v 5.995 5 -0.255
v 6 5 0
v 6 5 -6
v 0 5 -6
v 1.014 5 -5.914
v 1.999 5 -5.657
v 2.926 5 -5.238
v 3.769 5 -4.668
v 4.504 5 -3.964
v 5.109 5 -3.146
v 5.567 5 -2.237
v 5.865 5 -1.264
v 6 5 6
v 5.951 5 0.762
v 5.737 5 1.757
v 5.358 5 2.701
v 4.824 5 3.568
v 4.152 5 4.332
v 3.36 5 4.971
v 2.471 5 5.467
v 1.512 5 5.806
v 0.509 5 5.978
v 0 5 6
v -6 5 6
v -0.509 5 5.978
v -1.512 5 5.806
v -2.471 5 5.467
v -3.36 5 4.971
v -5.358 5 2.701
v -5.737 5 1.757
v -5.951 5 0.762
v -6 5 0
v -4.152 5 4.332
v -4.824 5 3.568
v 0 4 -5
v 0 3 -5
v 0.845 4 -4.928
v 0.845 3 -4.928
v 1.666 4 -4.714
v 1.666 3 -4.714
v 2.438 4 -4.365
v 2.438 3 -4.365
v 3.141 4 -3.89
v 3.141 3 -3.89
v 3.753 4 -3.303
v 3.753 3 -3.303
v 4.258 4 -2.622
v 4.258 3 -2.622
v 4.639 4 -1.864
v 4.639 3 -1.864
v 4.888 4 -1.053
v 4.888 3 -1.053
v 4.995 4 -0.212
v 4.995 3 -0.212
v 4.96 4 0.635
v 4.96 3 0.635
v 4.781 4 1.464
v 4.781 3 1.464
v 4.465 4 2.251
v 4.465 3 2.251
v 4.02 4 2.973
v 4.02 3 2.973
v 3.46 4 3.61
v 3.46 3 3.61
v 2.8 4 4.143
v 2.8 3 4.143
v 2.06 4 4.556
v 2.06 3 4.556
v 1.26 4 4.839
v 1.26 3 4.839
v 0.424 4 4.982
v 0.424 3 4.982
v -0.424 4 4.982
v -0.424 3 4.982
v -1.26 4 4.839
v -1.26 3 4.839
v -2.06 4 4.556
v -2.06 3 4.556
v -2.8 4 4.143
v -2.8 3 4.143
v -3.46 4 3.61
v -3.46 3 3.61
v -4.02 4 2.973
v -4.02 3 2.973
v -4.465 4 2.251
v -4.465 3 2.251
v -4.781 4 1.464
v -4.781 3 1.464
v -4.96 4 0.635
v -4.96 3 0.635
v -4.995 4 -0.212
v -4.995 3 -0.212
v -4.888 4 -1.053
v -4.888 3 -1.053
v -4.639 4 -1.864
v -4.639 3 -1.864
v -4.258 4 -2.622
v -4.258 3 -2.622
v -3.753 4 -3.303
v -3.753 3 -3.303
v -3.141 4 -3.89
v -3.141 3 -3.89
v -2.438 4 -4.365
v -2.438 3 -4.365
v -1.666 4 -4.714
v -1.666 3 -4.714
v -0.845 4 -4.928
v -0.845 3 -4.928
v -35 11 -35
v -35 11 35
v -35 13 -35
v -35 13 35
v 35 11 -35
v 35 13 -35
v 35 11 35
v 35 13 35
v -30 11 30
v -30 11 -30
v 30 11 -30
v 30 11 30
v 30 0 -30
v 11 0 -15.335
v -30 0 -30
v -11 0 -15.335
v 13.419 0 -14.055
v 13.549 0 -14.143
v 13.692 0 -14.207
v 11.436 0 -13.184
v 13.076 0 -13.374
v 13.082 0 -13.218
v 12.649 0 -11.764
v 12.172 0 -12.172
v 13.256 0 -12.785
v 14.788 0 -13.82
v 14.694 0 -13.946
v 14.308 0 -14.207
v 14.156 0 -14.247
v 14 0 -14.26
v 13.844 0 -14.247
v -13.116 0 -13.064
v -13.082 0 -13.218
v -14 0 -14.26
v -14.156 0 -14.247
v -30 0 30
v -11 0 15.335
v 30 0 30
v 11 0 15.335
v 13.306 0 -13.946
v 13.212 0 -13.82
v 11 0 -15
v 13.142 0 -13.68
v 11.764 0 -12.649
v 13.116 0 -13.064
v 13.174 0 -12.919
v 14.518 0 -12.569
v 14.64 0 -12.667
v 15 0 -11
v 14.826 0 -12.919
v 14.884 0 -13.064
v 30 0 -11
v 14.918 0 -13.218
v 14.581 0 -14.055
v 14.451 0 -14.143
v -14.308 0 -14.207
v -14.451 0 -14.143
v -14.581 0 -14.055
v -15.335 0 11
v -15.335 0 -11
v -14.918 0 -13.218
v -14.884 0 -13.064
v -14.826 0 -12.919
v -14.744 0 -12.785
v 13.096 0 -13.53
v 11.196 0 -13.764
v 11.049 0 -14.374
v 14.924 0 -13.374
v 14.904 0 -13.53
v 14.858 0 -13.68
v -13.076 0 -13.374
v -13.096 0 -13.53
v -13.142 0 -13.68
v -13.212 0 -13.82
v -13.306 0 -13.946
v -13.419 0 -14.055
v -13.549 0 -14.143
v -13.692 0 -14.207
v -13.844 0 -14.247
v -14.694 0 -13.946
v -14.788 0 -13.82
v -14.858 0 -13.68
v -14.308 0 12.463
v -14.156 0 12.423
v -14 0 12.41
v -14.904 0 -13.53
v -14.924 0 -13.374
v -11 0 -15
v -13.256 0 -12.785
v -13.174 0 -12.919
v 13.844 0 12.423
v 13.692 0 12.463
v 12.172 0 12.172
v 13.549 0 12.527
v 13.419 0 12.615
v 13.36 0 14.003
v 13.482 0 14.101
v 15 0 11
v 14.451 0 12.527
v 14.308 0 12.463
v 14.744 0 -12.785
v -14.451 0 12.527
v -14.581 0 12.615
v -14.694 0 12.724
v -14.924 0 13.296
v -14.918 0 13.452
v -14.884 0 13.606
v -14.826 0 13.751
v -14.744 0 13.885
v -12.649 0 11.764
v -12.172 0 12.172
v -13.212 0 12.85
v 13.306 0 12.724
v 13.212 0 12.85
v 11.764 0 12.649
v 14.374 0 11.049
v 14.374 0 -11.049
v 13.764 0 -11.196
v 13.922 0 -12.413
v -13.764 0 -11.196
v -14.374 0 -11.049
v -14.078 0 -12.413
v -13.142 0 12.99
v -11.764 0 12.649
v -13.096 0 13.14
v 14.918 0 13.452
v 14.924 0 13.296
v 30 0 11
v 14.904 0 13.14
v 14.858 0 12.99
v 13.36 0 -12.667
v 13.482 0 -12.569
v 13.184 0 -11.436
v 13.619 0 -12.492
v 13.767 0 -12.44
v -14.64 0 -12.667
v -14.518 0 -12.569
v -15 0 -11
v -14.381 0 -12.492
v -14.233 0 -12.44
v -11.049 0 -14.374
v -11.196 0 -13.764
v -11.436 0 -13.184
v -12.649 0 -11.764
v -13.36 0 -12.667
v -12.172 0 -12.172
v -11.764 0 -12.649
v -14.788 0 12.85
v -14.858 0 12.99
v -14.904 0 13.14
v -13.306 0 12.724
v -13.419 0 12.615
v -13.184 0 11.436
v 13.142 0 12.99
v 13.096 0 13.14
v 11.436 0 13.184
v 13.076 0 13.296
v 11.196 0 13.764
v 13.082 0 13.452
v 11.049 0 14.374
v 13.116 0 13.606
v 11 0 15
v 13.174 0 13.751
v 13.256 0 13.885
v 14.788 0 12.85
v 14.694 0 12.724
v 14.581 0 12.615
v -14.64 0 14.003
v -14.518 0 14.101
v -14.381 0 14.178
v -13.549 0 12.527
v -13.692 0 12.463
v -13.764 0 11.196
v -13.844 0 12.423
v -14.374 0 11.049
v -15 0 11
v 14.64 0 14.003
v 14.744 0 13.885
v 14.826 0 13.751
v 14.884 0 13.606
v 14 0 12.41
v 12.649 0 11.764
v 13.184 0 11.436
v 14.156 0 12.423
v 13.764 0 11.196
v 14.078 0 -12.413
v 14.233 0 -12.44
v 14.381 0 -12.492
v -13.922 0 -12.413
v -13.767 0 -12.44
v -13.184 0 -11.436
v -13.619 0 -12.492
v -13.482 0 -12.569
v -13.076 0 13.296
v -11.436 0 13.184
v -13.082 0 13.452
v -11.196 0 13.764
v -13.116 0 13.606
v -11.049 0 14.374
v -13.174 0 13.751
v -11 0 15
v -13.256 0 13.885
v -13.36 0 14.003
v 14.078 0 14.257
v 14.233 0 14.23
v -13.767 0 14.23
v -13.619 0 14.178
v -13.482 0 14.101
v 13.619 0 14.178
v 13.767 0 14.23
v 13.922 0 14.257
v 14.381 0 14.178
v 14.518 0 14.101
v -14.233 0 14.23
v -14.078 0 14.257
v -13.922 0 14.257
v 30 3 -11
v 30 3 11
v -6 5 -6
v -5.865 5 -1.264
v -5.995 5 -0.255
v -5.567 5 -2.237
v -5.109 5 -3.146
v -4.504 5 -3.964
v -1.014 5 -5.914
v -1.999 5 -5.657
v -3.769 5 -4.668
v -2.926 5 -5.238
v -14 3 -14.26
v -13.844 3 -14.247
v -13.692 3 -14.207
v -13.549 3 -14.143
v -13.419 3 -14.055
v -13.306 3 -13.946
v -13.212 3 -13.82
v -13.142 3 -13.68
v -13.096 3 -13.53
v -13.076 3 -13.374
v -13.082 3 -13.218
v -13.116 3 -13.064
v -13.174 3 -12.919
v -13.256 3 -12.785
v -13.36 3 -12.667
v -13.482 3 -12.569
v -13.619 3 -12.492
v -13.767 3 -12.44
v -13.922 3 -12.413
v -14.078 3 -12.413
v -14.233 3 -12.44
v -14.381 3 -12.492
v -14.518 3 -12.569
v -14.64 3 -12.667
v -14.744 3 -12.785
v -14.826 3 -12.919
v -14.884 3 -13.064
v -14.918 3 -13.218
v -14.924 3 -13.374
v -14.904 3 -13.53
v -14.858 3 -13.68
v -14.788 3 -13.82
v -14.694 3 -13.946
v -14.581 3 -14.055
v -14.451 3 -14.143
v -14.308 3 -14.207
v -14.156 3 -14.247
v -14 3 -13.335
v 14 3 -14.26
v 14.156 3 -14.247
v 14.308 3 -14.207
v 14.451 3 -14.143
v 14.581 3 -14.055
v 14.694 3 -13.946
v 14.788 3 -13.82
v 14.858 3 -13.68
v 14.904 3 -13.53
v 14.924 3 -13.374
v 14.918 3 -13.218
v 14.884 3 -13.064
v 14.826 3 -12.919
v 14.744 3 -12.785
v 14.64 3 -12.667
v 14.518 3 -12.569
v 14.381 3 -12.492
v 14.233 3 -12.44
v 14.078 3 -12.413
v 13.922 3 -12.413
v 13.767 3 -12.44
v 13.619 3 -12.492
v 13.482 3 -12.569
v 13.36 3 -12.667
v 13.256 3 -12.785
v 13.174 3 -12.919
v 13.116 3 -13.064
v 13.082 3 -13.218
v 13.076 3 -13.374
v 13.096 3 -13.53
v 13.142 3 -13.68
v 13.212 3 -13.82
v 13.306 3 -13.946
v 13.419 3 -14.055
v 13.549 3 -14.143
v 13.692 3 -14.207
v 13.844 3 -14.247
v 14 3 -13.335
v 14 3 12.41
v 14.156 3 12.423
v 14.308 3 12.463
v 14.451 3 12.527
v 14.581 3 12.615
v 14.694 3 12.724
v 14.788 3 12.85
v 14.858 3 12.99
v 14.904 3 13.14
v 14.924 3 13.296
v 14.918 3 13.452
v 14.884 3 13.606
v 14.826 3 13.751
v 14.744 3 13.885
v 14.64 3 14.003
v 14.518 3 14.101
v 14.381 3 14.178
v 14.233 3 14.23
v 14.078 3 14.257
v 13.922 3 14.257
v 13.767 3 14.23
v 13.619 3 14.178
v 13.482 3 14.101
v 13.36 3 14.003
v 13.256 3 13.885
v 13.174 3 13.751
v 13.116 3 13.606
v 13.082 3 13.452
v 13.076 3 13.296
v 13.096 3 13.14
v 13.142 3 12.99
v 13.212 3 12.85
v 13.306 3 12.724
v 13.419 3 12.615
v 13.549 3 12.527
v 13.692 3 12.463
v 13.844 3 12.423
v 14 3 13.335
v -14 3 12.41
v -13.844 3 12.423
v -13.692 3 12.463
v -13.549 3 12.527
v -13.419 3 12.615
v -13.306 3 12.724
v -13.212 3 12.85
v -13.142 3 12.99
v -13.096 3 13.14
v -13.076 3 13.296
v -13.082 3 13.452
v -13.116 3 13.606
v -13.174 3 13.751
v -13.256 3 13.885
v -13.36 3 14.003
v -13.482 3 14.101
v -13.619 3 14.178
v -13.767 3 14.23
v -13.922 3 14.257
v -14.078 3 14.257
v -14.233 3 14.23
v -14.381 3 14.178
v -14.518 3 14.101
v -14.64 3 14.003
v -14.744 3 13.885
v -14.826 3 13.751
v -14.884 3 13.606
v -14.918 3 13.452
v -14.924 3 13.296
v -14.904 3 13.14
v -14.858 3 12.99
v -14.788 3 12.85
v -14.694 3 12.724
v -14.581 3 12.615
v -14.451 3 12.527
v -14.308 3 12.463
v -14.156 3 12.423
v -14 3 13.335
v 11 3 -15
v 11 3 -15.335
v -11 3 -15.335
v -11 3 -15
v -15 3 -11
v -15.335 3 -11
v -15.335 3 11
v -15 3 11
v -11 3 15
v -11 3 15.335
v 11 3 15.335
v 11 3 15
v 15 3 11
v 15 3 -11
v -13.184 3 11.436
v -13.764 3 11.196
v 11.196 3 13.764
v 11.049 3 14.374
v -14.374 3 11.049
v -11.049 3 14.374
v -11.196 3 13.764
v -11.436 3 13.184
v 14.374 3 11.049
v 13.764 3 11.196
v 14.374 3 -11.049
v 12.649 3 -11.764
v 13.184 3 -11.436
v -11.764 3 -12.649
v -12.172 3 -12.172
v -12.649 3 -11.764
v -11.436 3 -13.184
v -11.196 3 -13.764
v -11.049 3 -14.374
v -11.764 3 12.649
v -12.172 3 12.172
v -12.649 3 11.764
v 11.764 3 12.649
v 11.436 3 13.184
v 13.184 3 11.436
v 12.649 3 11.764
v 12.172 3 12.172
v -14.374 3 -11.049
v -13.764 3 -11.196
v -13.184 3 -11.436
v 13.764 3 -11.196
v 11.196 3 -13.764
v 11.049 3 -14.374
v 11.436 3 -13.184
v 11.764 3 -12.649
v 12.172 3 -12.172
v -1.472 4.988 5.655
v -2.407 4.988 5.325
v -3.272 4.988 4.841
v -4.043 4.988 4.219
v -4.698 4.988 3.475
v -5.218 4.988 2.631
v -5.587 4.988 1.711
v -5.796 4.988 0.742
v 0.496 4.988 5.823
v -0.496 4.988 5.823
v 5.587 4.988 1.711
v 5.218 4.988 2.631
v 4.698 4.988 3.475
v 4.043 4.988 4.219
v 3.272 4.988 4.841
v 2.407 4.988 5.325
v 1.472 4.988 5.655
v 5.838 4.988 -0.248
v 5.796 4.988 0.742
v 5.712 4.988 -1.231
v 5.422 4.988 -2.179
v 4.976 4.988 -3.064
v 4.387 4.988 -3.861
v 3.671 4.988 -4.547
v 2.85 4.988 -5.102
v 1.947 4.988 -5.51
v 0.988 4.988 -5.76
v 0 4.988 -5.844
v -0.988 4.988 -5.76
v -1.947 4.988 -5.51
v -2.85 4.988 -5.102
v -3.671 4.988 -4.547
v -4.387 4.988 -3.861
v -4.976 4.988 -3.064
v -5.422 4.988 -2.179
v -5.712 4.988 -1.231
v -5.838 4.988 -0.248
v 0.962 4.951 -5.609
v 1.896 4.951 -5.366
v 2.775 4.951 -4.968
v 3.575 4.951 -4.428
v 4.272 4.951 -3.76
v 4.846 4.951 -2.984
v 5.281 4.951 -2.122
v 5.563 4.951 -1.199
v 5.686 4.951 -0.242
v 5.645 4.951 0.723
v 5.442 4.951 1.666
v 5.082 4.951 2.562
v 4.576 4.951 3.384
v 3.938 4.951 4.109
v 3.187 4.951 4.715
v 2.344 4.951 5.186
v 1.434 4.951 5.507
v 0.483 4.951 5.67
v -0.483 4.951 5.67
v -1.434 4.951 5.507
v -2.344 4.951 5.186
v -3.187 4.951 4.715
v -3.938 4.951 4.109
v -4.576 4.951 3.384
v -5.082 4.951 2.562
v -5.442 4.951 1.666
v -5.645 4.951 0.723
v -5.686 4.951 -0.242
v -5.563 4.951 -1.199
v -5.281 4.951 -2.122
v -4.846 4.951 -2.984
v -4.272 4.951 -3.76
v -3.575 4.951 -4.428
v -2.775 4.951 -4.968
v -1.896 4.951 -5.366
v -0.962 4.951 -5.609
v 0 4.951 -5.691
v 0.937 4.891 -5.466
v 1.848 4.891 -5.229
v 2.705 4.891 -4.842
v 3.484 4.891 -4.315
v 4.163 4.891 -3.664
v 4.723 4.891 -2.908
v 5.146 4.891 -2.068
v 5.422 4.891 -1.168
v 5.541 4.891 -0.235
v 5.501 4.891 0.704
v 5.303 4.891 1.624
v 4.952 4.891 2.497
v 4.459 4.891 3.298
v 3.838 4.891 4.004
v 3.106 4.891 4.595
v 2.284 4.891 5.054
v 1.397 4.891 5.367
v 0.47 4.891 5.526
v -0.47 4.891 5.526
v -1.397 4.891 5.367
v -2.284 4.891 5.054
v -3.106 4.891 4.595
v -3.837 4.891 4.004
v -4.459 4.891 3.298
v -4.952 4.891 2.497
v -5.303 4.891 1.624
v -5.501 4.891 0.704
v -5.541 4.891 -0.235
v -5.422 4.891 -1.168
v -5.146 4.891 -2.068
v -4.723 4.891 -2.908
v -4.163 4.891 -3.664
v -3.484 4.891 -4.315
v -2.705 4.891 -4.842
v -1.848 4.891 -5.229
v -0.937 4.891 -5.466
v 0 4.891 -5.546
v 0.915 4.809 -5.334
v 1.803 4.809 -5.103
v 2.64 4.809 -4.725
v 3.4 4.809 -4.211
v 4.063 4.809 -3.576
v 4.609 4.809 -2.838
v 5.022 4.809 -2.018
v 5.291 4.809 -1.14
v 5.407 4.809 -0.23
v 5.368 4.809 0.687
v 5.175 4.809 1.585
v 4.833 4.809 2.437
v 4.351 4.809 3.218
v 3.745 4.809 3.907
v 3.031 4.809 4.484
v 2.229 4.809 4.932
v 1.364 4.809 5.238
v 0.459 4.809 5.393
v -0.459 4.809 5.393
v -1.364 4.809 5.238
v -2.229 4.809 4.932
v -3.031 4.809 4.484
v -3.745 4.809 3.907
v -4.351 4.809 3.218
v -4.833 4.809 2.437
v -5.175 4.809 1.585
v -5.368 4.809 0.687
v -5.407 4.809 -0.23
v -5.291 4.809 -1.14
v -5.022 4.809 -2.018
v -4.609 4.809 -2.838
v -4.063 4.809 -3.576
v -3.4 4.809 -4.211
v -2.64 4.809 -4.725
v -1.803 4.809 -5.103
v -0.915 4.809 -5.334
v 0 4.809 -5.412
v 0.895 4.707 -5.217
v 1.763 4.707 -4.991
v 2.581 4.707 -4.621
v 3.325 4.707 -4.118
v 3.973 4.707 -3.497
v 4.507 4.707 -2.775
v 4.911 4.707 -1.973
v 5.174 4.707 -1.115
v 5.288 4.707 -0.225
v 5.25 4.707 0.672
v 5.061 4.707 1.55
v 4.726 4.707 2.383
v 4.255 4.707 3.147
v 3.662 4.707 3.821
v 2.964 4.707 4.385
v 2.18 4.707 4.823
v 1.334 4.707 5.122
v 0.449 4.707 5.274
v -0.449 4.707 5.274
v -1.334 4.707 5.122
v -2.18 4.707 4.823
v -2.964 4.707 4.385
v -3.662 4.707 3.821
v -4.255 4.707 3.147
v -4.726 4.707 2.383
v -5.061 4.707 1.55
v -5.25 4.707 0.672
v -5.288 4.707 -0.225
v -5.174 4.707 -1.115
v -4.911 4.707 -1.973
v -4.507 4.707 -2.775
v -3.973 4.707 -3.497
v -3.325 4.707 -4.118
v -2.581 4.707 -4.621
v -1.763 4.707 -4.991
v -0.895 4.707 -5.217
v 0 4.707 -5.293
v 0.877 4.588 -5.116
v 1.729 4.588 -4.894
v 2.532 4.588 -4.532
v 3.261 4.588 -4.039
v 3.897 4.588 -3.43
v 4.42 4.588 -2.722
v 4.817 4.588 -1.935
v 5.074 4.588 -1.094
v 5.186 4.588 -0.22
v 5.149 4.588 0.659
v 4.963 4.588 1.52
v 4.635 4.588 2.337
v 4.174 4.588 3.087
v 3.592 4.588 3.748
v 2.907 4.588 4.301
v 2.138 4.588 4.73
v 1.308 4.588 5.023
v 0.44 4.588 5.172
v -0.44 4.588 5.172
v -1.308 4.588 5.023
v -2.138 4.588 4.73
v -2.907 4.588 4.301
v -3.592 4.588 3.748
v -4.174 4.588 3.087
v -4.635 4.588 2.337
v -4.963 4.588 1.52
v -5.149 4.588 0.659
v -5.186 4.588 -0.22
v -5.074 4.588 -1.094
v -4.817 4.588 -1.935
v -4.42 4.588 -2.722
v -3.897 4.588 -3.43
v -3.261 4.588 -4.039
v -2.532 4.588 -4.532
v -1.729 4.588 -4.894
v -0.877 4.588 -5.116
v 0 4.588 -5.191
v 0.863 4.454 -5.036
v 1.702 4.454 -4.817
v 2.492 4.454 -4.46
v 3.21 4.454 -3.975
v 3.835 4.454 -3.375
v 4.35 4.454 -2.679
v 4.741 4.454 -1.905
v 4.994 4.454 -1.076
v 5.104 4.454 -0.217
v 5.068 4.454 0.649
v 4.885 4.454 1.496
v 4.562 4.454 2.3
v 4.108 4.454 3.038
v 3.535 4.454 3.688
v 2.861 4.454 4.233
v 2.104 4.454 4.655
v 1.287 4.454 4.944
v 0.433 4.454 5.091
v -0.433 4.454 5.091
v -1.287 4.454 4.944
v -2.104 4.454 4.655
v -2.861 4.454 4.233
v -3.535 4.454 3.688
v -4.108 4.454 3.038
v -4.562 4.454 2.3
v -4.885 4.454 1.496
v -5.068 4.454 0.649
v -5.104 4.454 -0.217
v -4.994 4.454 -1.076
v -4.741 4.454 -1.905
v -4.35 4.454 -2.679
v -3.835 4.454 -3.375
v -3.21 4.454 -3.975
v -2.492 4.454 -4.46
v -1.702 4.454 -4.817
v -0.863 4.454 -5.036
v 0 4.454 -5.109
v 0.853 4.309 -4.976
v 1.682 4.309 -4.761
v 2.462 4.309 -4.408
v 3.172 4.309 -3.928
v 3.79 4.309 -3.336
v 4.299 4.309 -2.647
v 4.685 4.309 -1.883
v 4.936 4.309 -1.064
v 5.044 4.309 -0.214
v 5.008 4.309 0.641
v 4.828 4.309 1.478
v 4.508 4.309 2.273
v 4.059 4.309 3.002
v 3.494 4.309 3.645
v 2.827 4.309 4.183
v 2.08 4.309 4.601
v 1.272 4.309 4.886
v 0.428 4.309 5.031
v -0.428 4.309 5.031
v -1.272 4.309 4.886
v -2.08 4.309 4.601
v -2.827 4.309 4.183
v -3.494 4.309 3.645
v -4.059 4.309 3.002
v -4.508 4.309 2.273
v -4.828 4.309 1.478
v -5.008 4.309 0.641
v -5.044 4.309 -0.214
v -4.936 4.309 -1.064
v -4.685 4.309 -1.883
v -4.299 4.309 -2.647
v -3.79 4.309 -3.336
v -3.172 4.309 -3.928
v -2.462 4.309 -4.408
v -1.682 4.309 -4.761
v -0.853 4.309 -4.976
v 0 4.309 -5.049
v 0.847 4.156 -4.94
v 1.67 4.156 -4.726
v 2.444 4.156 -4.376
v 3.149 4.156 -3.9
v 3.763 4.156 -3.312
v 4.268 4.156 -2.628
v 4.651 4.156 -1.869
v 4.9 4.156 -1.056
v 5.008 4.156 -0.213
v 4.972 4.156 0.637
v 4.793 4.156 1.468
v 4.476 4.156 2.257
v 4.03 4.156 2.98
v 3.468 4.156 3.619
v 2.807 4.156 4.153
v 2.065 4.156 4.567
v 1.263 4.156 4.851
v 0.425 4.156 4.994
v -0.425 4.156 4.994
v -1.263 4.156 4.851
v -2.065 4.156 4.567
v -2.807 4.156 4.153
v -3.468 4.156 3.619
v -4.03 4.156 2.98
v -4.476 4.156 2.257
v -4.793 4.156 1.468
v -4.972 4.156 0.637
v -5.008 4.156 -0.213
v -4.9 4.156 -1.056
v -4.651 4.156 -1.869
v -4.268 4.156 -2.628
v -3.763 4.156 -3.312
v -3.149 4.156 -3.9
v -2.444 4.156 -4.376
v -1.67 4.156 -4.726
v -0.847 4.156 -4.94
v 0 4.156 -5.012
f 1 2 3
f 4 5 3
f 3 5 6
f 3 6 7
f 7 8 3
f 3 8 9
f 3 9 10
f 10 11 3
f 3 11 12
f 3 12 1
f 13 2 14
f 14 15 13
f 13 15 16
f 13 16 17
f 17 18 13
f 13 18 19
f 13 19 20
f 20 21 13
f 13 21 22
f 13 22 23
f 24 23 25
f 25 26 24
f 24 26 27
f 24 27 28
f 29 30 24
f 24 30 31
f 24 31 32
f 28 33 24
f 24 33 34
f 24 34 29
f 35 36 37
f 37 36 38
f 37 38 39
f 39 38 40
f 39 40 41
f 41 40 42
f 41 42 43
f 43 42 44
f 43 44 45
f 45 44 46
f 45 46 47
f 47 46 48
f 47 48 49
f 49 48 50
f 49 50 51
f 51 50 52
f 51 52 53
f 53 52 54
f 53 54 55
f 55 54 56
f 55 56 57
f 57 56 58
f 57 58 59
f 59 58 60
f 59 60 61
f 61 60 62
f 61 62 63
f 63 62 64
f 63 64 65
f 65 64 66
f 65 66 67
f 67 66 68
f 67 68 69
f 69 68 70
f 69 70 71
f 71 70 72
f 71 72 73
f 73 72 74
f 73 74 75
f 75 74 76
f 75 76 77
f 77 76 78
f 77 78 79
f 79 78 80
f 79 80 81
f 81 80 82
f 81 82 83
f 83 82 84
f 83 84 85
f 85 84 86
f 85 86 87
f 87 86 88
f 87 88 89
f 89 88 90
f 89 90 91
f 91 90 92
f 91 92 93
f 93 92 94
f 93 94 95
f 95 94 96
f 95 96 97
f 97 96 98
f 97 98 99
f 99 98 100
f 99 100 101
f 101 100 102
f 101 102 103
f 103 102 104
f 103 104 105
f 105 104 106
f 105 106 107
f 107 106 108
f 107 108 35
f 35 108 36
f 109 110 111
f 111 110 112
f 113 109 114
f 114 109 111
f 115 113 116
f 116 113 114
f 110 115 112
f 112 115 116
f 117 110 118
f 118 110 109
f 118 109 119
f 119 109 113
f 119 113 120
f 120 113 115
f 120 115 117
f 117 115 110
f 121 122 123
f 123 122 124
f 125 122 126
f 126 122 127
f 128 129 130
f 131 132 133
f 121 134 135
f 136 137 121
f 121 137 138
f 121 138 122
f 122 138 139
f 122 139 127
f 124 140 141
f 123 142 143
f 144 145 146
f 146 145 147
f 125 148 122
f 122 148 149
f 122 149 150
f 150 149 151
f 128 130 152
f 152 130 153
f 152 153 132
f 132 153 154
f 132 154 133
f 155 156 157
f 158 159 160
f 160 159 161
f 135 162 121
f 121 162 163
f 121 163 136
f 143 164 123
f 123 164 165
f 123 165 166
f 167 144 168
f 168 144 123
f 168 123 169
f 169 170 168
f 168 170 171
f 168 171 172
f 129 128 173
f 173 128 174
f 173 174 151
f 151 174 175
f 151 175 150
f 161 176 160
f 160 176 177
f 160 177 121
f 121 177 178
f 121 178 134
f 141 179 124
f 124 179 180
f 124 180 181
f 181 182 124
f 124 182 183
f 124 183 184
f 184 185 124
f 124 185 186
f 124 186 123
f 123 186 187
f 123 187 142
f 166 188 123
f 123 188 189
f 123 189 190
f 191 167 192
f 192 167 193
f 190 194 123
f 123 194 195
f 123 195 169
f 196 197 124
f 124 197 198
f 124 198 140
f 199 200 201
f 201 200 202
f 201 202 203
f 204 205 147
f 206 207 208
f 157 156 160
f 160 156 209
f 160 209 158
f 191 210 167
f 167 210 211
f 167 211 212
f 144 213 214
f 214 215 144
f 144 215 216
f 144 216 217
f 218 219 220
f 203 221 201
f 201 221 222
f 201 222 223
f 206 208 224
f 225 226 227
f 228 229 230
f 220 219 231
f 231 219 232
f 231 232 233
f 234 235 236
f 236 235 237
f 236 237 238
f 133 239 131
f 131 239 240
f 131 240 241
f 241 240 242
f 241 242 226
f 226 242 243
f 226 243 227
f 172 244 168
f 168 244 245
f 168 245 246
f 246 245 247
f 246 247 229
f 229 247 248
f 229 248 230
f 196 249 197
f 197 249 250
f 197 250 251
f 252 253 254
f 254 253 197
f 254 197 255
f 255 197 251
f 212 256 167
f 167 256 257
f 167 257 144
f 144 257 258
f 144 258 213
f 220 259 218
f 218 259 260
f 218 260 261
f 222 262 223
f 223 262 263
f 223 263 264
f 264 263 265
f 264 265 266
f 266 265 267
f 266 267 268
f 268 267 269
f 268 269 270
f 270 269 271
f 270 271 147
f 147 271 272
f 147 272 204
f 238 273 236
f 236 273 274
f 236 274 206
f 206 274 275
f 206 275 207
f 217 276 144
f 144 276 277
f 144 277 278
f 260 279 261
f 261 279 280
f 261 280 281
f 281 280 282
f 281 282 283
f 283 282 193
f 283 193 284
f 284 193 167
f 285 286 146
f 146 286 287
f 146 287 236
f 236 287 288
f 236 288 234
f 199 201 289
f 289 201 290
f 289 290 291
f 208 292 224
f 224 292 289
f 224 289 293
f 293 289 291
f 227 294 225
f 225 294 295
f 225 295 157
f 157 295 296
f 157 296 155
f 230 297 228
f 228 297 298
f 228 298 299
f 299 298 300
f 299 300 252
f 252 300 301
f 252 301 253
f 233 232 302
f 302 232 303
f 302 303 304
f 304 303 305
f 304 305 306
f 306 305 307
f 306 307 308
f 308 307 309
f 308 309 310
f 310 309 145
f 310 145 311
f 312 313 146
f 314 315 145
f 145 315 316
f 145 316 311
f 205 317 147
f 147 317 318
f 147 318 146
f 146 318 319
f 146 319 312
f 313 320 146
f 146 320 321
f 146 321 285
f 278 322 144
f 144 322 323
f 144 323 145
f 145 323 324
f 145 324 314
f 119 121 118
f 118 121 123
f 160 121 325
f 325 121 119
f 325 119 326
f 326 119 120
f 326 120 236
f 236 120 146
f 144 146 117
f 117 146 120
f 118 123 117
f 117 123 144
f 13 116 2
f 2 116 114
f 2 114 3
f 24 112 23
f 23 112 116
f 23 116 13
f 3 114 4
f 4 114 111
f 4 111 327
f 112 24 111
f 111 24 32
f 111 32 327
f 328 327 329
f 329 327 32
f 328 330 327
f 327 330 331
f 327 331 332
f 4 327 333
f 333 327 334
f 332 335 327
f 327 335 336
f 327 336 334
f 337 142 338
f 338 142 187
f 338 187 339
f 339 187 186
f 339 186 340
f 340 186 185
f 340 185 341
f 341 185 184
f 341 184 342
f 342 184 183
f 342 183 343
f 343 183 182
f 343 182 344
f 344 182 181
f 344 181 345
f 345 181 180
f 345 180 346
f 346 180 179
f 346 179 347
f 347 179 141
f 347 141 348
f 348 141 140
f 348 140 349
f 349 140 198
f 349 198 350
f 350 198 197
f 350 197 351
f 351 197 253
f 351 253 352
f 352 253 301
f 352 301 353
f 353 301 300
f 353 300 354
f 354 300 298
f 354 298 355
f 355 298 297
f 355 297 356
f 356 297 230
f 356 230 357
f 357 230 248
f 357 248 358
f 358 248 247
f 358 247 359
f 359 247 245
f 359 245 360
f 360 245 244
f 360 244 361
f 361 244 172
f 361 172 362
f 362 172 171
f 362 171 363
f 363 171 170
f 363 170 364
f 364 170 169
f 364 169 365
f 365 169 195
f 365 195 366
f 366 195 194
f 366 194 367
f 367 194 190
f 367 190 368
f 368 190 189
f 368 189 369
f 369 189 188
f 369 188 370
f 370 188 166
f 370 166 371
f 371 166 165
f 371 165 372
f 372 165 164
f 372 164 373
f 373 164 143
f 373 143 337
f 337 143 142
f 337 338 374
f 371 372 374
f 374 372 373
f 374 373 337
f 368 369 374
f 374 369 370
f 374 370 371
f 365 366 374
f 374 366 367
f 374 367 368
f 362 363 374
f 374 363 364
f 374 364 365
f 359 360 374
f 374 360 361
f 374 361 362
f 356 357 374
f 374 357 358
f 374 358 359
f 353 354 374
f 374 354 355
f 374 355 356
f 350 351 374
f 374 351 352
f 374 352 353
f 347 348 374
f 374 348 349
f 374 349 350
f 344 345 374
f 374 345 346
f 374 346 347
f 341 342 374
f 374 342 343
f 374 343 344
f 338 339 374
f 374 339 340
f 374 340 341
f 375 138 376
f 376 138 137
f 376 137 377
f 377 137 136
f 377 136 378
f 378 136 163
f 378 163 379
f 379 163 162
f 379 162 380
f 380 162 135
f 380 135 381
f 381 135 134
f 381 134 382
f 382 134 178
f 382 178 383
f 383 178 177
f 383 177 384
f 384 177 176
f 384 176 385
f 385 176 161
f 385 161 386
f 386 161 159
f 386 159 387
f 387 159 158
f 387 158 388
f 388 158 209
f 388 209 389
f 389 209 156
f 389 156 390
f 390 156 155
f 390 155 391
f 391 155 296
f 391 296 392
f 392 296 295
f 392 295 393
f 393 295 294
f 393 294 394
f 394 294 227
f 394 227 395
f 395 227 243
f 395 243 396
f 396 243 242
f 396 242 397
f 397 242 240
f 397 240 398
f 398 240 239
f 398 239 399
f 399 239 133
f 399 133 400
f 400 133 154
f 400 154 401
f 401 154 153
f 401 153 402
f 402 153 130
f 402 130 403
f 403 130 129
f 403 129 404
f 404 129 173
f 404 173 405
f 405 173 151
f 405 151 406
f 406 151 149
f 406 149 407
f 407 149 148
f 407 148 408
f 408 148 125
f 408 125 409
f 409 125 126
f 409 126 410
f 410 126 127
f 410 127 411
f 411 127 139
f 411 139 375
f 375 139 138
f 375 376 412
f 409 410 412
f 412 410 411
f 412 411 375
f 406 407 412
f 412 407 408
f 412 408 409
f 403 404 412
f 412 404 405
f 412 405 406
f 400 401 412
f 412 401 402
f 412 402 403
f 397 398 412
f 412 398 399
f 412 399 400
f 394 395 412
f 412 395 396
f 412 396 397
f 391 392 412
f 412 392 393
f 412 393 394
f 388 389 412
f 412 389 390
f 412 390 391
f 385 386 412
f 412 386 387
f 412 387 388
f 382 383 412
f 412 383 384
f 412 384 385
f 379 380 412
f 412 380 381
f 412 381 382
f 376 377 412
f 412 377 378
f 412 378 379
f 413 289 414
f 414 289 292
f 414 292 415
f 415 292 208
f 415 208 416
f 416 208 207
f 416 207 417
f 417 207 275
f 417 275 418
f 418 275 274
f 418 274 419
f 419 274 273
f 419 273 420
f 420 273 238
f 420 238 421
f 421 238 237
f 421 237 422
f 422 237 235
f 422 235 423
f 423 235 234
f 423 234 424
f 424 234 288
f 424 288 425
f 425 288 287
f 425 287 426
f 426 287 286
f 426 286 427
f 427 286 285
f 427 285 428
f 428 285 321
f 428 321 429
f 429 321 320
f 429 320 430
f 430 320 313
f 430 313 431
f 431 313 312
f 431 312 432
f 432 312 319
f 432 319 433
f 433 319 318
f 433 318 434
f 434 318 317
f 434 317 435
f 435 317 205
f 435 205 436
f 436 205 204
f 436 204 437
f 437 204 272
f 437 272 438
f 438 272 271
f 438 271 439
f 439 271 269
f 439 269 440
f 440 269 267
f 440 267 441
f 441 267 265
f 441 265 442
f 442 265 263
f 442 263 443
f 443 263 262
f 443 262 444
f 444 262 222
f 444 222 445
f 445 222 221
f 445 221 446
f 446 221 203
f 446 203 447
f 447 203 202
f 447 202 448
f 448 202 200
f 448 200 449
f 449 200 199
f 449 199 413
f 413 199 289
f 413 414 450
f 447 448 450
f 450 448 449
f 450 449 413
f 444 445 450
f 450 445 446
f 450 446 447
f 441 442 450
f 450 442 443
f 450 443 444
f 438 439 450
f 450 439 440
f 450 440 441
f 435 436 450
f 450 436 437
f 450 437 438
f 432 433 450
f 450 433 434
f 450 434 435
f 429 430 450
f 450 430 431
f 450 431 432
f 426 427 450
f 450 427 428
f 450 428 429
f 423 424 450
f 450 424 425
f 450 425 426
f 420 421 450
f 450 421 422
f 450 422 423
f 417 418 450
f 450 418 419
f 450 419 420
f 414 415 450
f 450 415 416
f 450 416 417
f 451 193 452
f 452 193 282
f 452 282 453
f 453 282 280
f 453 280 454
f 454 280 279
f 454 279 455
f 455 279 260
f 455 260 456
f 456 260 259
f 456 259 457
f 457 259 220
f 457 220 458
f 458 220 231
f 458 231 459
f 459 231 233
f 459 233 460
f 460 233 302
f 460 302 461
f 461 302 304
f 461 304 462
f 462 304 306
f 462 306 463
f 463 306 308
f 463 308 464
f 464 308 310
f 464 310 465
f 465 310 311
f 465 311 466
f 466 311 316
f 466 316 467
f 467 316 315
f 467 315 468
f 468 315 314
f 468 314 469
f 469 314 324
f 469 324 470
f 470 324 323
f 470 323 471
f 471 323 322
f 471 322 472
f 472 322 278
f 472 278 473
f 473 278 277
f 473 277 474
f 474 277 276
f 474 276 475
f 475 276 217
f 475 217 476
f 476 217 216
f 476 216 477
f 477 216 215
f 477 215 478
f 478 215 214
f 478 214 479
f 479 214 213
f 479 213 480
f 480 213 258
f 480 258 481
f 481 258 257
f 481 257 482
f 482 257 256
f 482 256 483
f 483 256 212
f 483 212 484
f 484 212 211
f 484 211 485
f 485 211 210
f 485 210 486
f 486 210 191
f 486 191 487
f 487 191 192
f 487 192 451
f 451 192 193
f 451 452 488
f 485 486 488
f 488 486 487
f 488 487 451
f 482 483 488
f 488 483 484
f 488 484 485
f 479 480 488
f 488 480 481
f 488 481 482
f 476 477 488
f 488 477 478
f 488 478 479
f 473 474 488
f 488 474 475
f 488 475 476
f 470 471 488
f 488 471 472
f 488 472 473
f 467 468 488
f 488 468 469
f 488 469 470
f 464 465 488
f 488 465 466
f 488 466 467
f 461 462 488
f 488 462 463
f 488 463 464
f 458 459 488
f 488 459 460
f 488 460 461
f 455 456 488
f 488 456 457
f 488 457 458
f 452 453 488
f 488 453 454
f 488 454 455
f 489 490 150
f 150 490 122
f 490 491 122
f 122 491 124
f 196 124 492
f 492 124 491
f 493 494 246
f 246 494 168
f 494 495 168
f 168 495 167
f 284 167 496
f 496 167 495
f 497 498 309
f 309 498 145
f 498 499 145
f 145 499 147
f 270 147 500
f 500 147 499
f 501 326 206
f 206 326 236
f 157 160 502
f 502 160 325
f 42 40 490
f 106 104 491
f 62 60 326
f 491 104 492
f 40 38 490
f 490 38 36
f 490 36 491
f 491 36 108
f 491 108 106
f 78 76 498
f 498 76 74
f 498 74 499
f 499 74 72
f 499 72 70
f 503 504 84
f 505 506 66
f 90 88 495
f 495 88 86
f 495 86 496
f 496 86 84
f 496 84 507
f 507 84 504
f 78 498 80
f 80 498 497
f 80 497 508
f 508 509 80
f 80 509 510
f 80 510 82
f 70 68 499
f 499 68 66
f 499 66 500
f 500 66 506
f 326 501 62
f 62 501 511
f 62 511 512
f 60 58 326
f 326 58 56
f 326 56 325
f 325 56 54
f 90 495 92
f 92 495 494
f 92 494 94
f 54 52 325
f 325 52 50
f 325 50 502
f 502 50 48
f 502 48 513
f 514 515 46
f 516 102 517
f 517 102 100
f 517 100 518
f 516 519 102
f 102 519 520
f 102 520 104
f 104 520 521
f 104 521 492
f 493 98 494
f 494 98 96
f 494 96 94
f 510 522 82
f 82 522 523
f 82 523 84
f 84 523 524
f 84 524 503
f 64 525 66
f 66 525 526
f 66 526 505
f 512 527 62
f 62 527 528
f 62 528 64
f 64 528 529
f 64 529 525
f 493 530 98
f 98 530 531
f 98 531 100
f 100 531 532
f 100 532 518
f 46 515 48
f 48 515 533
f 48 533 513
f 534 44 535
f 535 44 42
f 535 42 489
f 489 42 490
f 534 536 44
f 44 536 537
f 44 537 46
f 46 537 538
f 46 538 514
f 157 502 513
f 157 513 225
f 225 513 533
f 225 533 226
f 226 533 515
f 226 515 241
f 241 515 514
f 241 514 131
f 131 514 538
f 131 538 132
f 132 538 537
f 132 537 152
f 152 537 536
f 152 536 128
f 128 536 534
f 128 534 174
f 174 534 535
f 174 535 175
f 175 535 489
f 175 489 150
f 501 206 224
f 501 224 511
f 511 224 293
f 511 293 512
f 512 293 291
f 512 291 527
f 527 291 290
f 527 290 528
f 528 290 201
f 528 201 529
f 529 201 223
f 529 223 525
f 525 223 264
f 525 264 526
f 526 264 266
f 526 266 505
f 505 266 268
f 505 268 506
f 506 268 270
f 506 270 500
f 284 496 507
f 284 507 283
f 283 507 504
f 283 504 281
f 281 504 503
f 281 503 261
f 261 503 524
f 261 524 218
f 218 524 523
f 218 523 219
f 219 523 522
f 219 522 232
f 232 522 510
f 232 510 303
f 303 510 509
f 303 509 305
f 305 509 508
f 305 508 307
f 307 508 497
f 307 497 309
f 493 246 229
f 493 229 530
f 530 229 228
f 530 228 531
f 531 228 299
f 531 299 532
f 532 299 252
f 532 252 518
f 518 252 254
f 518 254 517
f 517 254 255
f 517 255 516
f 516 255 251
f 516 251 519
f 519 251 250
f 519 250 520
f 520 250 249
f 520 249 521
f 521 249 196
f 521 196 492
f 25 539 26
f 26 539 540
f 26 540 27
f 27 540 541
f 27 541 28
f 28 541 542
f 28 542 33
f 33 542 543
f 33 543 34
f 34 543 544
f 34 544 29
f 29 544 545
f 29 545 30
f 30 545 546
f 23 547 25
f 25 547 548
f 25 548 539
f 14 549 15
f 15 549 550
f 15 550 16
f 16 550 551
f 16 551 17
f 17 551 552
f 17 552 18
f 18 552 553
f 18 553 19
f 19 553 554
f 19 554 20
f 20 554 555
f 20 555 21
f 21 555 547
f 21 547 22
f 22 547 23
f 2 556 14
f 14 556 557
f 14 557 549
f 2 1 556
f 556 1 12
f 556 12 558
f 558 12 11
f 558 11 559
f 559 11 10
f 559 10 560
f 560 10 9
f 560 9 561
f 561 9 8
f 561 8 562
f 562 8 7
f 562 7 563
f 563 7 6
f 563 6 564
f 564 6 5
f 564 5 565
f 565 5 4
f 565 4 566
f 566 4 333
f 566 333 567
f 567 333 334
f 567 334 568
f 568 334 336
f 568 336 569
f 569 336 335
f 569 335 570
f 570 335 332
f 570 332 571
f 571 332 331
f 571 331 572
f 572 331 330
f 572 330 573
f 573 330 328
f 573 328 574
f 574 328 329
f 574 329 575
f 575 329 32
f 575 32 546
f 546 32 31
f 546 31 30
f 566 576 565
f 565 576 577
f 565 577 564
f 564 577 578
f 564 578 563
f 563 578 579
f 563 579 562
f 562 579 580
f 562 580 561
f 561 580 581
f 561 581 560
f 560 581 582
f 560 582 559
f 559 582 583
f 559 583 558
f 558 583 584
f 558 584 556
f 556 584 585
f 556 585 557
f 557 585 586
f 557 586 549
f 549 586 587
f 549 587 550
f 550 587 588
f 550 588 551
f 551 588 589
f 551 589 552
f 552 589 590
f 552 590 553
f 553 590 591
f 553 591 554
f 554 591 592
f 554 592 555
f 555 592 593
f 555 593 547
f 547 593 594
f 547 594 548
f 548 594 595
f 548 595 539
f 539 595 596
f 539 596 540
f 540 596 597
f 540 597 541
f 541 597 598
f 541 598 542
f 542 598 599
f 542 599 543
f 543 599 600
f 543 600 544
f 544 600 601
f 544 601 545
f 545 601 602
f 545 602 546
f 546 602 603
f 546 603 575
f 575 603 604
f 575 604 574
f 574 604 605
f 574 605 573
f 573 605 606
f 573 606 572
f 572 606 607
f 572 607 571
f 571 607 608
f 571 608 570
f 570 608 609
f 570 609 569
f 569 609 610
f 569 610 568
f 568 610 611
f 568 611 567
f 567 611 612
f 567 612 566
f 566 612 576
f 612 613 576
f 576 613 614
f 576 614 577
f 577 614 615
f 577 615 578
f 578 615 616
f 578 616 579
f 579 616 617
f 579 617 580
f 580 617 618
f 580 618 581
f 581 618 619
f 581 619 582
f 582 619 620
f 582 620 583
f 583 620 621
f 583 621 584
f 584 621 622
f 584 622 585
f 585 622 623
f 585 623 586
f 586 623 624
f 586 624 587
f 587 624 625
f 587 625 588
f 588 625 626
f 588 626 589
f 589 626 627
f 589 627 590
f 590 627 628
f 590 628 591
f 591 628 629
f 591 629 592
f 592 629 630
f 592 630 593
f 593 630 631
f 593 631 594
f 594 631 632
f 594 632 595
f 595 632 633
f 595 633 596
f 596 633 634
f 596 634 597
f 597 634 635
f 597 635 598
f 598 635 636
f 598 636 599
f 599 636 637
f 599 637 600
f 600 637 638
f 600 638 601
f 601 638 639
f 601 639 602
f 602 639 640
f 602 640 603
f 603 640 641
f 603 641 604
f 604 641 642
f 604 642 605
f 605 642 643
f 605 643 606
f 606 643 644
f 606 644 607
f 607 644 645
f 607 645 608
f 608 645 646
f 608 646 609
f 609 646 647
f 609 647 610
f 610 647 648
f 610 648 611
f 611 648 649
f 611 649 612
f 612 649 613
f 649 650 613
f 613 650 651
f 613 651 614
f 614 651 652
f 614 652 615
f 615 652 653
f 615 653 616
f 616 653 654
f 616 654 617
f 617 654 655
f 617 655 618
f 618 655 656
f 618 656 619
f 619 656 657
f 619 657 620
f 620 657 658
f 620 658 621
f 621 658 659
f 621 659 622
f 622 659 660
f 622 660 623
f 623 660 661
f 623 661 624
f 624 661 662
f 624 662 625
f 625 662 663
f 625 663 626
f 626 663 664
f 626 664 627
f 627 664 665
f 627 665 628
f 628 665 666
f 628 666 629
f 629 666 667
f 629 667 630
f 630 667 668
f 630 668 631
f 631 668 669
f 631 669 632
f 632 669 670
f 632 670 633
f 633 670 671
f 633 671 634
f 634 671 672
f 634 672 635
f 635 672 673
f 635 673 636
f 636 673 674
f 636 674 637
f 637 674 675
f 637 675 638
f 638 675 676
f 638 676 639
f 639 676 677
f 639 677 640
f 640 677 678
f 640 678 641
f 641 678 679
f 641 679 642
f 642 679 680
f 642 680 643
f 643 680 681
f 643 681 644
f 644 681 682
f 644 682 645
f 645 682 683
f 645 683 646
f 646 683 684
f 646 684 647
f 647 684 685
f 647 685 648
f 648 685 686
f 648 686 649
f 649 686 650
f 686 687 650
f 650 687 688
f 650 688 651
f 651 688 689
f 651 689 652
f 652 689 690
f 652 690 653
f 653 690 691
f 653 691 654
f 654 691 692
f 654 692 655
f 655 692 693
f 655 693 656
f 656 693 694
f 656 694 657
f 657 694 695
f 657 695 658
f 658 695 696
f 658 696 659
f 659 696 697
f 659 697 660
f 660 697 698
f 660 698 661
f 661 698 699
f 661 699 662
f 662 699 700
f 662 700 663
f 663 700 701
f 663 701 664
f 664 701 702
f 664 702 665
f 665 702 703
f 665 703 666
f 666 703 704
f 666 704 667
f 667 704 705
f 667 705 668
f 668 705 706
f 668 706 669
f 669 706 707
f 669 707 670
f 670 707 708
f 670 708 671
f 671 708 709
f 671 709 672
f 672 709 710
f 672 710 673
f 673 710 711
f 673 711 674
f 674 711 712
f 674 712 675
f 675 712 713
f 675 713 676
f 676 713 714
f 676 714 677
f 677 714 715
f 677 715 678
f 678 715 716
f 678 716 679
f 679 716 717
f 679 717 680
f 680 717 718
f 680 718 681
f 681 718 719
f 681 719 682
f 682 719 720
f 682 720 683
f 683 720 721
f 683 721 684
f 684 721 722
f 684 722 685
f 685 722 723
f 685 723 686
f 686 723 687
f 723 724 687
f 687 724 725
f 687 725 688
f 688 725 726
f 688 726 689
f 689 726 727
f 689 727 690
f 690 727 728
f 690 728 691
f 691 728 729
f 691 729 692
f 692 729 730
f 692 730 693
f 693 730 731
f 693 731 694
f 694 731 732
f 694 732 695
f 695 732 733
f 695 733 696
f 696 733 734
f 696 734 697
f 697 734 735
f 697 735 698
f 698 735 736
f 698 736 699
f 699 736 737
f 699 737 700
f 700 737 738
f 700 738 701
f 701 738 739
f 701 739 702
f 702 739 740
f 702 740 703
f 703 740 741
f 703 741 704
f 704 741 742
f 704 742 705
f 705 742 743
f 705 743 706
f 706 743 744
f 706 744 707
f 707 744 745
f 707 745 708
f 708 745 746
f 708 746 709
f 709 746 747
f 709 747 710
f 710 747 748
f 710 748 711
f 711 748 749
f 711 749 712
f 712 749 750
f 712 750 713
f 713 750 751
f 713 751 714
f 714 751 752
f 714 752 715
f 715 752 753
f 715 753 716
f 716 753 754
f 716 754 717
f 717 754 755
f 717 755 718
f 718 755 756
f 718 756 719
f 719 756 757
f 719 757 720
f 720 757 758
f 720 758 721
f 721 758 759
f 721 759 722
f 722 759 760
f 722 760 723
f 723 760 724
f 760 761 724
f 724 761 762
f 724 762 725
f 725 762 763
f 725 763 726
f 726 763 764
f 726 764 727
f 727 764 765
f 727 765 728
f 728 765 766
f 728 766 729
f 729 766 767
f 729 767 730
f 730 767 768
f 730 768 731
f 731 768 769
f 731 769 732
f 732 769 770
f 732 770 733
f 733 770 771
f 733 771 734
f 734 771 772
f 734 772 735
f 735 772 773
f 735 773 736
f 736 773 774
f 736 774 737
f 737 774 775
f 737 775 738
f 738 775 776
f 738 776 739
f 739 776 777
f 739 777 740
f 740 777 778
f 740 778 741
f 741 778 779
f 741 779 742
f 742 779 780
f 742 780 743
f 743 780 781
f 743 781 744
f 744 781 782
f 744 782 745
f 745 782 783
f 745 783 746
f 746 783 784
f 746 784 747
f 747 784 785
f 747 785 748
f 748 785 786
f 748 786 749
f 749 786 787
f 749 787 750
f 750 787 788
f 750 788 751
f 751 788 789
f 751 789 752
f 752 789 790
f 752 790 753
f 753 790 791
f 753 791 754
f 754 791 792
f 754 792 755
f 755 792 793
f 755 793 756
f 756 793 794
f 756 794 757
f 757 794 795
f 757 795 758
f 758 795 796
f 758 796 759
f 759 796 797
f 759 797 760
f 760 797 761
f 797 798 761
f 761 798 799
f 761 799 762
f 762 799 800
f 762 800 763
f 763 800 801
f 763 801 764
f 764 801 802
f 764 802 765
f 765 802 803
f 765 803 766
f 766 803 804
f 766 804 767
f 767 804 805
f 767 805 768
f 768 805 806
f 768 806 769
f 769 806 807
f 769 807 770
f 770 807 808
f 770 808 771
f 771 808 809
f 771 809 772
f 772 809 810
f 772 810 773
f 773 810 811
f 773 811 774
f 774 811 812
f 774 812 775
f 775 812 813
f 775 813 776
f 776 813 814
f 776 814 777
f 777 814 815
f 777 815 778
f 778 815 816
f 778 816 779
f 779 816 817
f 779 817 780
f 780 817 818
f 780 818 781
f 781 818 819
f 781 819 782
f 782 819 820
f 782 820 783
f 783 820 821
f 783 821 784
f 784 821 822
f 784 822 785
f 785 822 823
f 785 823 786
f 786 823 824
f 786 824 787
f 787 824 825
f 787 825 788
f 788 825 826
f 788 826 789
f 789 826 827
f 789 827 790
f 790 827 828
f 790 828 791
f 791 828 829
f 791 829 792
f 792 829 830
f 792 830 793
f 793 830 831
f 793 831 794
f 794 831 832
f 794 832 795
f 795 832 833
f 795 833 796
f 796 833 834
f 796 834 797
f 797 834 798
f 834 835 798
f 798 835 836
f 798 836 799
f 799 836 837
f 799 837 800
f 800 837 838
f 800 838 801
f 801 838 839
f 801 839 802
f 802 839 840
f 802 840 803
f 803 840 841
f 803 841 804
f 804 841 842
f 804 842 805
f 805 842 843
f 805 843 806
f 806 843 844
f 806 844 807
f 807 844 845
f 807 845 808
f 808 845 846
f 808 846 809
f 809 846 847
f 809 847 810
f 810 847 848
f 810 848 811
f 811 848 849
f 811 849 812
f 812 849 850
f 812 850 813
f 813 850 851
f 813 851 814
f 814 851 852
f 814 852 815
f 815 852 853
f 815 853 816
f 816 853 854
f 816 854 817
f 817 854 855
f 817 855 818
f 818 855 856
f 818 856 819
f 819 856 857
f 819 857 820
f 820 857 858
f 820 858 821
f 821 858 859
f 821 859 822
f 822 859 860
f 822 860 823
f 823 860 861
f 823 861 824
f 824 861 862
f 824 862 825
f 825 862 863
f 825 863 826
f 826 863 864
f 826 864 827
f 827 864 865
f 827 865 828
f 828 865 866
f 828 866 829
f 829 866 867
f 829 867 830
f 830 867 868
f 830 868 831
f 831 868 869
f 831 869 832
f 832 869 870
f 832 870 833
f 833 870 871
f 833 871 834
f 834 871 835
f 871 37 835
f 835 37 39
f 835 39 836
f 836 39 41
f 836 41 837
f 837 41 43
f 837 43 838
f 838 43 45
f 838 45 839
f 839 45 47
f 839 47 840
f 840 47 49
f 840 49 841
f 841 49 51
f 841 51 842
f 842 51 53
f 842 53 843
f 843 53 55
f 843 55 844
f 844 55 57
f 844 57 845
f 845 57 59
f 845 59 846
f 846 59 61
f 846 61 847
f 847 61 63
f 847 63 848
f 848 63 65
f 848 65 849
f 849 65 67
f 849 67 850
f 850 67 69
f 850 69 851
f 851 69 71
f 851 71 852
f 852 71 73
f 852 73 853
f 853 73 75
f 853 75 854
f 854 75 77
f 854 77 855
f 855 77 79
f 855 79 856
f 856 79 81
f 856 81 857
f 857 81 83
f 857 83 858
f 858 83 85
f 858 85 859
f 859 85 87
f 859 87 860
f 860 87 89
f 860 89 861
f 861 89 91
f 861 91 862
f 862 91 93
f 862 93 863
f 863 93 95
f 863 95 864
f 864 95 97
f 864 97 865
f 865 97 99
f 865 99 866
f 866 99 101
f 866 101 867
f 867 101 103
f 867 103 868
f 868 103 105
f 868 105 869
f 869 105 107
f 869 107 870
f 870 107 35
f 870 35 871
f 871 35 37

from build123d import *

# Parameters (mm, degrees)
SKETCH1_W            = 60
SKETCH1_H            = 60
BOSS_EXTRUDE1_DEPTH  = 6
SKETCH7_W            = 60
SKETCH7_H            = 60
SKETCH7_W_2          = 56
SKETCH7_H_2          = 56
BOSS_EXTRUDE4_DEPTH  = 7
SKETCH8_W            = 70
SKETCH8_H            = 70
SKETCH8_W_2          = 60
SKETCH8_H_2          = 60
BOSS_EXTRUDE5_DEPTH  = 2
SKETCH12_W           = 56
SKETCH12_H           = 56
BOSS_EXTRUDE10_DEPTH = 7
SKETCH13_W           = 12
SKETCH13_H           = 12
CUT_EXTRUDE3_DEPTH   = 8
SKETCH3_R            = 5
CUT_EXTRUDE4_DEPTH   = 52.17616649
SKETCH2_R            = 0.925
CUT_EXTRUDE5_DEPTH   = 3
SKETCH15_W           = 22
SKETCH15_H           = 4.335
SKETCH15_H_2         = 22
SKETCH15_R           = 5
SKETCH15_W_2         = 4.335
CUT_EXTRUDE6_DEPTH   = 3
SKETCH16_W           = 14.665
SKETCH16_H           = 22
CUT_EXTRUDE7_DEPTH   = 3
FILLET1_R            = 4
FILLET2_R            = 1


with BuildPart() as part:
    # Sketch1 → Boss-Extrude1 (new body)
    with BuildSketch(Plane(origin=(0, 0, 0), x_dir=(1, 0, 0), z_dir=(0, 1, 0))):
        Rectangle(SKETCH1_W, SKETCH1_H)
    extrude(amount=BOSS_EXTRUDE1_DEPTH)

    # Sketch7 → Boss-Extrude4 (add)
    with BuildSketch(Plane(origin=(0, 6, 0), x_dir=(1, 0, 0), z_dir=(0, 1, 0))):
        Rectangle(SKETCH7_W, SKETCH7_H)
        Rectangle(SKETCH7_W_2, SKETCH7_H_2, mode=Mode.SUBTRACT)
    extrude(amount=BOSS_EXTRUDE4_DEPTH)

    # Sketch8 → Boss-Extrude5 (add)
    with BuildSketch(Plane(origin=(0, 13, 0), x_dir=(1, 0, 0), z_dir=(0, 1, 0))):
        Rectangle(SKETCH8_W, SKETCH8_H)
        Rectangle(SKETCH8_W_2, SKETCH8_H_2, mode=Mode.SUBTRACT)
    extrude(amount=-BOSS_EXTRUDE5_DEPTH)

    # Sketch12 → Boss-Extrude10 (add)
    with BuildSketch(Plane(origin=(0, 6, 0), x_dir=(1, 0, 0), z_dir=(0, 1, 0))):
        Rectangle(SKETCH12_W, SKETCH12_H)
    extrude(amount=BOSS_EXTRUDE10_DEPTH)

    # Sketch13 → Cut-Extrude3 (cut)
    with BuildSketch(Plane(origin=(0, 13, 0), x_dir=(1, 0, 0), z_dir=(0, 1, 0))):
        Rectangle(SKETCH13_W, SKETCH13_H)
    extrude(amount=-CUT_EXTRUDE3_DEPTH, mode=Mode.SUBTRACT)

    # Sketch14 → section 1 of cut_loft1
    with BuildSketch(Plane(origin=(0, 13, 0), x_dir=(1, 0, 0), z_dir=(0, 1, 0)), mode=Mode.PRIVATE) as cut_loft1_s1:
        with BuildLine():
            Line((-35, 35), (-35, -35))
            Line((-35, -35), (35, -35))
            Line((35, -35), (35, 35))
            Line((35, 35), (-35, 35))
        make_face()
    # loft from a face of the part (cut_loft1)
    loft([part.faces().sort_by_distance((0, 5, 0))[0], cut_loft1_s1.sketch], mode=Mode.SUBTRACT)

    # Sketch3 → Cut-Extrude4 (cut, through all)
    with BuildSketch(Plane.XZ):
        with Locations(Location((0, 0, 0), (0, 0, 270))):
            Circle(SKETCH3_R)
    extrude(amount=-CUT_EXTRUDE4_DEPTH, mode=Mode.SUBTRACT)

    # Sketch2 → Cut-Extrude5 (cut)
    with BuildSketch(Plane.XZ):
        with Locations(Location((-14, -13.335, 0), (0, 0, 270))):
            Circle(SKETCH2_R)
        with Locations(Location((14, -13.335, 0), (0, 0, 270))):
            Circle(SKETCH2_R)
        with Locations(Location((14, 13.335, 0), (0, 0, 270))):
            Circle(SKETCH2_R)
        with Locations(Location((-14, 13.335, 0), (0, 0, 270))):
            Circle(SKETCH2_R)
    extrude(amount=-CUT_EXTRUDE5_DEPTH, mode=Mode.SUBTRACT)

    # Sketch15 → Cut-Extrude6 (cut)
    # profile 1 of 5: a face of its own
    with BuildSketch(Plane.XZ):
        with Locations((0, -13.1675)):
            Rectangle(SKETCH15_W, SKETCH15_H)
    # profile 2 of 5: a face of its own
    with BuildSketch(Plane.XZ):
        Rectangle(SKETCH15_W, SKETCH15_H_2)
        with Locations(Location((0, 0, 0), (0, 0, 270))):
            Circle(SKETCH15_R, mode=Mode.SUBTRACT)
    # profile 3 of 5: a face of its own
    with BuildSketch(Plane.XZ):
        with Locations((-13.1675, 0)):
            Rectangle(SKETCH15_W_2, SKETCH15_H_2)
    # profile 4 of 5: a face of its own
    with BuildSketch(Plane.XZ):
        with Locations((0, 13.1675)):
            Rectangle(SKETCH15_W, SKETCH15_H)
    # profile 5 of 5: a face of its own
    with BuildSketch(Plane.XZ):
        with Locations((13.1675, 0)):
            Rectangle(SKETCH15_W_2, SKETCH15_H_2)
    extrude(amount=-CUT_EXTRUDE6_DEPTH, mode=Mode.SUBTRACT)

    # Sketch16 → Cut-Extrude7 (cut)
    with BuildSketch(Plane.XZ):
        with Locations((22.6675, 0)):
            Rectangle(SKETCH16_W, SKETCH16_H)
    extrude(amount=-CUT_EXTRUDE7_DEPTH, mode=Mode.SUBTRACT)

    # Fillet1
    fillet1_edges = [part.edges().sort_by_distance(p)[0] for p in [
        (11, 1.5, -11),
        (-11, 1.5, -11),
        (-11, 1.5, 11),
        (11, 1.5, 11),
    ]]
    fillet(fillet1_edges, radius=FILLET1_R)

    # Fillet2
    fillet2_edges = [part.edges().sort_by_distance(p)[0] for p in [
        (0, 5, 5),
    ]]
    fillet(fillet2_edges, radius=FILLET2_R - 0.0001)  # a hair under: the kernel refuses the full size


solid = part.part
